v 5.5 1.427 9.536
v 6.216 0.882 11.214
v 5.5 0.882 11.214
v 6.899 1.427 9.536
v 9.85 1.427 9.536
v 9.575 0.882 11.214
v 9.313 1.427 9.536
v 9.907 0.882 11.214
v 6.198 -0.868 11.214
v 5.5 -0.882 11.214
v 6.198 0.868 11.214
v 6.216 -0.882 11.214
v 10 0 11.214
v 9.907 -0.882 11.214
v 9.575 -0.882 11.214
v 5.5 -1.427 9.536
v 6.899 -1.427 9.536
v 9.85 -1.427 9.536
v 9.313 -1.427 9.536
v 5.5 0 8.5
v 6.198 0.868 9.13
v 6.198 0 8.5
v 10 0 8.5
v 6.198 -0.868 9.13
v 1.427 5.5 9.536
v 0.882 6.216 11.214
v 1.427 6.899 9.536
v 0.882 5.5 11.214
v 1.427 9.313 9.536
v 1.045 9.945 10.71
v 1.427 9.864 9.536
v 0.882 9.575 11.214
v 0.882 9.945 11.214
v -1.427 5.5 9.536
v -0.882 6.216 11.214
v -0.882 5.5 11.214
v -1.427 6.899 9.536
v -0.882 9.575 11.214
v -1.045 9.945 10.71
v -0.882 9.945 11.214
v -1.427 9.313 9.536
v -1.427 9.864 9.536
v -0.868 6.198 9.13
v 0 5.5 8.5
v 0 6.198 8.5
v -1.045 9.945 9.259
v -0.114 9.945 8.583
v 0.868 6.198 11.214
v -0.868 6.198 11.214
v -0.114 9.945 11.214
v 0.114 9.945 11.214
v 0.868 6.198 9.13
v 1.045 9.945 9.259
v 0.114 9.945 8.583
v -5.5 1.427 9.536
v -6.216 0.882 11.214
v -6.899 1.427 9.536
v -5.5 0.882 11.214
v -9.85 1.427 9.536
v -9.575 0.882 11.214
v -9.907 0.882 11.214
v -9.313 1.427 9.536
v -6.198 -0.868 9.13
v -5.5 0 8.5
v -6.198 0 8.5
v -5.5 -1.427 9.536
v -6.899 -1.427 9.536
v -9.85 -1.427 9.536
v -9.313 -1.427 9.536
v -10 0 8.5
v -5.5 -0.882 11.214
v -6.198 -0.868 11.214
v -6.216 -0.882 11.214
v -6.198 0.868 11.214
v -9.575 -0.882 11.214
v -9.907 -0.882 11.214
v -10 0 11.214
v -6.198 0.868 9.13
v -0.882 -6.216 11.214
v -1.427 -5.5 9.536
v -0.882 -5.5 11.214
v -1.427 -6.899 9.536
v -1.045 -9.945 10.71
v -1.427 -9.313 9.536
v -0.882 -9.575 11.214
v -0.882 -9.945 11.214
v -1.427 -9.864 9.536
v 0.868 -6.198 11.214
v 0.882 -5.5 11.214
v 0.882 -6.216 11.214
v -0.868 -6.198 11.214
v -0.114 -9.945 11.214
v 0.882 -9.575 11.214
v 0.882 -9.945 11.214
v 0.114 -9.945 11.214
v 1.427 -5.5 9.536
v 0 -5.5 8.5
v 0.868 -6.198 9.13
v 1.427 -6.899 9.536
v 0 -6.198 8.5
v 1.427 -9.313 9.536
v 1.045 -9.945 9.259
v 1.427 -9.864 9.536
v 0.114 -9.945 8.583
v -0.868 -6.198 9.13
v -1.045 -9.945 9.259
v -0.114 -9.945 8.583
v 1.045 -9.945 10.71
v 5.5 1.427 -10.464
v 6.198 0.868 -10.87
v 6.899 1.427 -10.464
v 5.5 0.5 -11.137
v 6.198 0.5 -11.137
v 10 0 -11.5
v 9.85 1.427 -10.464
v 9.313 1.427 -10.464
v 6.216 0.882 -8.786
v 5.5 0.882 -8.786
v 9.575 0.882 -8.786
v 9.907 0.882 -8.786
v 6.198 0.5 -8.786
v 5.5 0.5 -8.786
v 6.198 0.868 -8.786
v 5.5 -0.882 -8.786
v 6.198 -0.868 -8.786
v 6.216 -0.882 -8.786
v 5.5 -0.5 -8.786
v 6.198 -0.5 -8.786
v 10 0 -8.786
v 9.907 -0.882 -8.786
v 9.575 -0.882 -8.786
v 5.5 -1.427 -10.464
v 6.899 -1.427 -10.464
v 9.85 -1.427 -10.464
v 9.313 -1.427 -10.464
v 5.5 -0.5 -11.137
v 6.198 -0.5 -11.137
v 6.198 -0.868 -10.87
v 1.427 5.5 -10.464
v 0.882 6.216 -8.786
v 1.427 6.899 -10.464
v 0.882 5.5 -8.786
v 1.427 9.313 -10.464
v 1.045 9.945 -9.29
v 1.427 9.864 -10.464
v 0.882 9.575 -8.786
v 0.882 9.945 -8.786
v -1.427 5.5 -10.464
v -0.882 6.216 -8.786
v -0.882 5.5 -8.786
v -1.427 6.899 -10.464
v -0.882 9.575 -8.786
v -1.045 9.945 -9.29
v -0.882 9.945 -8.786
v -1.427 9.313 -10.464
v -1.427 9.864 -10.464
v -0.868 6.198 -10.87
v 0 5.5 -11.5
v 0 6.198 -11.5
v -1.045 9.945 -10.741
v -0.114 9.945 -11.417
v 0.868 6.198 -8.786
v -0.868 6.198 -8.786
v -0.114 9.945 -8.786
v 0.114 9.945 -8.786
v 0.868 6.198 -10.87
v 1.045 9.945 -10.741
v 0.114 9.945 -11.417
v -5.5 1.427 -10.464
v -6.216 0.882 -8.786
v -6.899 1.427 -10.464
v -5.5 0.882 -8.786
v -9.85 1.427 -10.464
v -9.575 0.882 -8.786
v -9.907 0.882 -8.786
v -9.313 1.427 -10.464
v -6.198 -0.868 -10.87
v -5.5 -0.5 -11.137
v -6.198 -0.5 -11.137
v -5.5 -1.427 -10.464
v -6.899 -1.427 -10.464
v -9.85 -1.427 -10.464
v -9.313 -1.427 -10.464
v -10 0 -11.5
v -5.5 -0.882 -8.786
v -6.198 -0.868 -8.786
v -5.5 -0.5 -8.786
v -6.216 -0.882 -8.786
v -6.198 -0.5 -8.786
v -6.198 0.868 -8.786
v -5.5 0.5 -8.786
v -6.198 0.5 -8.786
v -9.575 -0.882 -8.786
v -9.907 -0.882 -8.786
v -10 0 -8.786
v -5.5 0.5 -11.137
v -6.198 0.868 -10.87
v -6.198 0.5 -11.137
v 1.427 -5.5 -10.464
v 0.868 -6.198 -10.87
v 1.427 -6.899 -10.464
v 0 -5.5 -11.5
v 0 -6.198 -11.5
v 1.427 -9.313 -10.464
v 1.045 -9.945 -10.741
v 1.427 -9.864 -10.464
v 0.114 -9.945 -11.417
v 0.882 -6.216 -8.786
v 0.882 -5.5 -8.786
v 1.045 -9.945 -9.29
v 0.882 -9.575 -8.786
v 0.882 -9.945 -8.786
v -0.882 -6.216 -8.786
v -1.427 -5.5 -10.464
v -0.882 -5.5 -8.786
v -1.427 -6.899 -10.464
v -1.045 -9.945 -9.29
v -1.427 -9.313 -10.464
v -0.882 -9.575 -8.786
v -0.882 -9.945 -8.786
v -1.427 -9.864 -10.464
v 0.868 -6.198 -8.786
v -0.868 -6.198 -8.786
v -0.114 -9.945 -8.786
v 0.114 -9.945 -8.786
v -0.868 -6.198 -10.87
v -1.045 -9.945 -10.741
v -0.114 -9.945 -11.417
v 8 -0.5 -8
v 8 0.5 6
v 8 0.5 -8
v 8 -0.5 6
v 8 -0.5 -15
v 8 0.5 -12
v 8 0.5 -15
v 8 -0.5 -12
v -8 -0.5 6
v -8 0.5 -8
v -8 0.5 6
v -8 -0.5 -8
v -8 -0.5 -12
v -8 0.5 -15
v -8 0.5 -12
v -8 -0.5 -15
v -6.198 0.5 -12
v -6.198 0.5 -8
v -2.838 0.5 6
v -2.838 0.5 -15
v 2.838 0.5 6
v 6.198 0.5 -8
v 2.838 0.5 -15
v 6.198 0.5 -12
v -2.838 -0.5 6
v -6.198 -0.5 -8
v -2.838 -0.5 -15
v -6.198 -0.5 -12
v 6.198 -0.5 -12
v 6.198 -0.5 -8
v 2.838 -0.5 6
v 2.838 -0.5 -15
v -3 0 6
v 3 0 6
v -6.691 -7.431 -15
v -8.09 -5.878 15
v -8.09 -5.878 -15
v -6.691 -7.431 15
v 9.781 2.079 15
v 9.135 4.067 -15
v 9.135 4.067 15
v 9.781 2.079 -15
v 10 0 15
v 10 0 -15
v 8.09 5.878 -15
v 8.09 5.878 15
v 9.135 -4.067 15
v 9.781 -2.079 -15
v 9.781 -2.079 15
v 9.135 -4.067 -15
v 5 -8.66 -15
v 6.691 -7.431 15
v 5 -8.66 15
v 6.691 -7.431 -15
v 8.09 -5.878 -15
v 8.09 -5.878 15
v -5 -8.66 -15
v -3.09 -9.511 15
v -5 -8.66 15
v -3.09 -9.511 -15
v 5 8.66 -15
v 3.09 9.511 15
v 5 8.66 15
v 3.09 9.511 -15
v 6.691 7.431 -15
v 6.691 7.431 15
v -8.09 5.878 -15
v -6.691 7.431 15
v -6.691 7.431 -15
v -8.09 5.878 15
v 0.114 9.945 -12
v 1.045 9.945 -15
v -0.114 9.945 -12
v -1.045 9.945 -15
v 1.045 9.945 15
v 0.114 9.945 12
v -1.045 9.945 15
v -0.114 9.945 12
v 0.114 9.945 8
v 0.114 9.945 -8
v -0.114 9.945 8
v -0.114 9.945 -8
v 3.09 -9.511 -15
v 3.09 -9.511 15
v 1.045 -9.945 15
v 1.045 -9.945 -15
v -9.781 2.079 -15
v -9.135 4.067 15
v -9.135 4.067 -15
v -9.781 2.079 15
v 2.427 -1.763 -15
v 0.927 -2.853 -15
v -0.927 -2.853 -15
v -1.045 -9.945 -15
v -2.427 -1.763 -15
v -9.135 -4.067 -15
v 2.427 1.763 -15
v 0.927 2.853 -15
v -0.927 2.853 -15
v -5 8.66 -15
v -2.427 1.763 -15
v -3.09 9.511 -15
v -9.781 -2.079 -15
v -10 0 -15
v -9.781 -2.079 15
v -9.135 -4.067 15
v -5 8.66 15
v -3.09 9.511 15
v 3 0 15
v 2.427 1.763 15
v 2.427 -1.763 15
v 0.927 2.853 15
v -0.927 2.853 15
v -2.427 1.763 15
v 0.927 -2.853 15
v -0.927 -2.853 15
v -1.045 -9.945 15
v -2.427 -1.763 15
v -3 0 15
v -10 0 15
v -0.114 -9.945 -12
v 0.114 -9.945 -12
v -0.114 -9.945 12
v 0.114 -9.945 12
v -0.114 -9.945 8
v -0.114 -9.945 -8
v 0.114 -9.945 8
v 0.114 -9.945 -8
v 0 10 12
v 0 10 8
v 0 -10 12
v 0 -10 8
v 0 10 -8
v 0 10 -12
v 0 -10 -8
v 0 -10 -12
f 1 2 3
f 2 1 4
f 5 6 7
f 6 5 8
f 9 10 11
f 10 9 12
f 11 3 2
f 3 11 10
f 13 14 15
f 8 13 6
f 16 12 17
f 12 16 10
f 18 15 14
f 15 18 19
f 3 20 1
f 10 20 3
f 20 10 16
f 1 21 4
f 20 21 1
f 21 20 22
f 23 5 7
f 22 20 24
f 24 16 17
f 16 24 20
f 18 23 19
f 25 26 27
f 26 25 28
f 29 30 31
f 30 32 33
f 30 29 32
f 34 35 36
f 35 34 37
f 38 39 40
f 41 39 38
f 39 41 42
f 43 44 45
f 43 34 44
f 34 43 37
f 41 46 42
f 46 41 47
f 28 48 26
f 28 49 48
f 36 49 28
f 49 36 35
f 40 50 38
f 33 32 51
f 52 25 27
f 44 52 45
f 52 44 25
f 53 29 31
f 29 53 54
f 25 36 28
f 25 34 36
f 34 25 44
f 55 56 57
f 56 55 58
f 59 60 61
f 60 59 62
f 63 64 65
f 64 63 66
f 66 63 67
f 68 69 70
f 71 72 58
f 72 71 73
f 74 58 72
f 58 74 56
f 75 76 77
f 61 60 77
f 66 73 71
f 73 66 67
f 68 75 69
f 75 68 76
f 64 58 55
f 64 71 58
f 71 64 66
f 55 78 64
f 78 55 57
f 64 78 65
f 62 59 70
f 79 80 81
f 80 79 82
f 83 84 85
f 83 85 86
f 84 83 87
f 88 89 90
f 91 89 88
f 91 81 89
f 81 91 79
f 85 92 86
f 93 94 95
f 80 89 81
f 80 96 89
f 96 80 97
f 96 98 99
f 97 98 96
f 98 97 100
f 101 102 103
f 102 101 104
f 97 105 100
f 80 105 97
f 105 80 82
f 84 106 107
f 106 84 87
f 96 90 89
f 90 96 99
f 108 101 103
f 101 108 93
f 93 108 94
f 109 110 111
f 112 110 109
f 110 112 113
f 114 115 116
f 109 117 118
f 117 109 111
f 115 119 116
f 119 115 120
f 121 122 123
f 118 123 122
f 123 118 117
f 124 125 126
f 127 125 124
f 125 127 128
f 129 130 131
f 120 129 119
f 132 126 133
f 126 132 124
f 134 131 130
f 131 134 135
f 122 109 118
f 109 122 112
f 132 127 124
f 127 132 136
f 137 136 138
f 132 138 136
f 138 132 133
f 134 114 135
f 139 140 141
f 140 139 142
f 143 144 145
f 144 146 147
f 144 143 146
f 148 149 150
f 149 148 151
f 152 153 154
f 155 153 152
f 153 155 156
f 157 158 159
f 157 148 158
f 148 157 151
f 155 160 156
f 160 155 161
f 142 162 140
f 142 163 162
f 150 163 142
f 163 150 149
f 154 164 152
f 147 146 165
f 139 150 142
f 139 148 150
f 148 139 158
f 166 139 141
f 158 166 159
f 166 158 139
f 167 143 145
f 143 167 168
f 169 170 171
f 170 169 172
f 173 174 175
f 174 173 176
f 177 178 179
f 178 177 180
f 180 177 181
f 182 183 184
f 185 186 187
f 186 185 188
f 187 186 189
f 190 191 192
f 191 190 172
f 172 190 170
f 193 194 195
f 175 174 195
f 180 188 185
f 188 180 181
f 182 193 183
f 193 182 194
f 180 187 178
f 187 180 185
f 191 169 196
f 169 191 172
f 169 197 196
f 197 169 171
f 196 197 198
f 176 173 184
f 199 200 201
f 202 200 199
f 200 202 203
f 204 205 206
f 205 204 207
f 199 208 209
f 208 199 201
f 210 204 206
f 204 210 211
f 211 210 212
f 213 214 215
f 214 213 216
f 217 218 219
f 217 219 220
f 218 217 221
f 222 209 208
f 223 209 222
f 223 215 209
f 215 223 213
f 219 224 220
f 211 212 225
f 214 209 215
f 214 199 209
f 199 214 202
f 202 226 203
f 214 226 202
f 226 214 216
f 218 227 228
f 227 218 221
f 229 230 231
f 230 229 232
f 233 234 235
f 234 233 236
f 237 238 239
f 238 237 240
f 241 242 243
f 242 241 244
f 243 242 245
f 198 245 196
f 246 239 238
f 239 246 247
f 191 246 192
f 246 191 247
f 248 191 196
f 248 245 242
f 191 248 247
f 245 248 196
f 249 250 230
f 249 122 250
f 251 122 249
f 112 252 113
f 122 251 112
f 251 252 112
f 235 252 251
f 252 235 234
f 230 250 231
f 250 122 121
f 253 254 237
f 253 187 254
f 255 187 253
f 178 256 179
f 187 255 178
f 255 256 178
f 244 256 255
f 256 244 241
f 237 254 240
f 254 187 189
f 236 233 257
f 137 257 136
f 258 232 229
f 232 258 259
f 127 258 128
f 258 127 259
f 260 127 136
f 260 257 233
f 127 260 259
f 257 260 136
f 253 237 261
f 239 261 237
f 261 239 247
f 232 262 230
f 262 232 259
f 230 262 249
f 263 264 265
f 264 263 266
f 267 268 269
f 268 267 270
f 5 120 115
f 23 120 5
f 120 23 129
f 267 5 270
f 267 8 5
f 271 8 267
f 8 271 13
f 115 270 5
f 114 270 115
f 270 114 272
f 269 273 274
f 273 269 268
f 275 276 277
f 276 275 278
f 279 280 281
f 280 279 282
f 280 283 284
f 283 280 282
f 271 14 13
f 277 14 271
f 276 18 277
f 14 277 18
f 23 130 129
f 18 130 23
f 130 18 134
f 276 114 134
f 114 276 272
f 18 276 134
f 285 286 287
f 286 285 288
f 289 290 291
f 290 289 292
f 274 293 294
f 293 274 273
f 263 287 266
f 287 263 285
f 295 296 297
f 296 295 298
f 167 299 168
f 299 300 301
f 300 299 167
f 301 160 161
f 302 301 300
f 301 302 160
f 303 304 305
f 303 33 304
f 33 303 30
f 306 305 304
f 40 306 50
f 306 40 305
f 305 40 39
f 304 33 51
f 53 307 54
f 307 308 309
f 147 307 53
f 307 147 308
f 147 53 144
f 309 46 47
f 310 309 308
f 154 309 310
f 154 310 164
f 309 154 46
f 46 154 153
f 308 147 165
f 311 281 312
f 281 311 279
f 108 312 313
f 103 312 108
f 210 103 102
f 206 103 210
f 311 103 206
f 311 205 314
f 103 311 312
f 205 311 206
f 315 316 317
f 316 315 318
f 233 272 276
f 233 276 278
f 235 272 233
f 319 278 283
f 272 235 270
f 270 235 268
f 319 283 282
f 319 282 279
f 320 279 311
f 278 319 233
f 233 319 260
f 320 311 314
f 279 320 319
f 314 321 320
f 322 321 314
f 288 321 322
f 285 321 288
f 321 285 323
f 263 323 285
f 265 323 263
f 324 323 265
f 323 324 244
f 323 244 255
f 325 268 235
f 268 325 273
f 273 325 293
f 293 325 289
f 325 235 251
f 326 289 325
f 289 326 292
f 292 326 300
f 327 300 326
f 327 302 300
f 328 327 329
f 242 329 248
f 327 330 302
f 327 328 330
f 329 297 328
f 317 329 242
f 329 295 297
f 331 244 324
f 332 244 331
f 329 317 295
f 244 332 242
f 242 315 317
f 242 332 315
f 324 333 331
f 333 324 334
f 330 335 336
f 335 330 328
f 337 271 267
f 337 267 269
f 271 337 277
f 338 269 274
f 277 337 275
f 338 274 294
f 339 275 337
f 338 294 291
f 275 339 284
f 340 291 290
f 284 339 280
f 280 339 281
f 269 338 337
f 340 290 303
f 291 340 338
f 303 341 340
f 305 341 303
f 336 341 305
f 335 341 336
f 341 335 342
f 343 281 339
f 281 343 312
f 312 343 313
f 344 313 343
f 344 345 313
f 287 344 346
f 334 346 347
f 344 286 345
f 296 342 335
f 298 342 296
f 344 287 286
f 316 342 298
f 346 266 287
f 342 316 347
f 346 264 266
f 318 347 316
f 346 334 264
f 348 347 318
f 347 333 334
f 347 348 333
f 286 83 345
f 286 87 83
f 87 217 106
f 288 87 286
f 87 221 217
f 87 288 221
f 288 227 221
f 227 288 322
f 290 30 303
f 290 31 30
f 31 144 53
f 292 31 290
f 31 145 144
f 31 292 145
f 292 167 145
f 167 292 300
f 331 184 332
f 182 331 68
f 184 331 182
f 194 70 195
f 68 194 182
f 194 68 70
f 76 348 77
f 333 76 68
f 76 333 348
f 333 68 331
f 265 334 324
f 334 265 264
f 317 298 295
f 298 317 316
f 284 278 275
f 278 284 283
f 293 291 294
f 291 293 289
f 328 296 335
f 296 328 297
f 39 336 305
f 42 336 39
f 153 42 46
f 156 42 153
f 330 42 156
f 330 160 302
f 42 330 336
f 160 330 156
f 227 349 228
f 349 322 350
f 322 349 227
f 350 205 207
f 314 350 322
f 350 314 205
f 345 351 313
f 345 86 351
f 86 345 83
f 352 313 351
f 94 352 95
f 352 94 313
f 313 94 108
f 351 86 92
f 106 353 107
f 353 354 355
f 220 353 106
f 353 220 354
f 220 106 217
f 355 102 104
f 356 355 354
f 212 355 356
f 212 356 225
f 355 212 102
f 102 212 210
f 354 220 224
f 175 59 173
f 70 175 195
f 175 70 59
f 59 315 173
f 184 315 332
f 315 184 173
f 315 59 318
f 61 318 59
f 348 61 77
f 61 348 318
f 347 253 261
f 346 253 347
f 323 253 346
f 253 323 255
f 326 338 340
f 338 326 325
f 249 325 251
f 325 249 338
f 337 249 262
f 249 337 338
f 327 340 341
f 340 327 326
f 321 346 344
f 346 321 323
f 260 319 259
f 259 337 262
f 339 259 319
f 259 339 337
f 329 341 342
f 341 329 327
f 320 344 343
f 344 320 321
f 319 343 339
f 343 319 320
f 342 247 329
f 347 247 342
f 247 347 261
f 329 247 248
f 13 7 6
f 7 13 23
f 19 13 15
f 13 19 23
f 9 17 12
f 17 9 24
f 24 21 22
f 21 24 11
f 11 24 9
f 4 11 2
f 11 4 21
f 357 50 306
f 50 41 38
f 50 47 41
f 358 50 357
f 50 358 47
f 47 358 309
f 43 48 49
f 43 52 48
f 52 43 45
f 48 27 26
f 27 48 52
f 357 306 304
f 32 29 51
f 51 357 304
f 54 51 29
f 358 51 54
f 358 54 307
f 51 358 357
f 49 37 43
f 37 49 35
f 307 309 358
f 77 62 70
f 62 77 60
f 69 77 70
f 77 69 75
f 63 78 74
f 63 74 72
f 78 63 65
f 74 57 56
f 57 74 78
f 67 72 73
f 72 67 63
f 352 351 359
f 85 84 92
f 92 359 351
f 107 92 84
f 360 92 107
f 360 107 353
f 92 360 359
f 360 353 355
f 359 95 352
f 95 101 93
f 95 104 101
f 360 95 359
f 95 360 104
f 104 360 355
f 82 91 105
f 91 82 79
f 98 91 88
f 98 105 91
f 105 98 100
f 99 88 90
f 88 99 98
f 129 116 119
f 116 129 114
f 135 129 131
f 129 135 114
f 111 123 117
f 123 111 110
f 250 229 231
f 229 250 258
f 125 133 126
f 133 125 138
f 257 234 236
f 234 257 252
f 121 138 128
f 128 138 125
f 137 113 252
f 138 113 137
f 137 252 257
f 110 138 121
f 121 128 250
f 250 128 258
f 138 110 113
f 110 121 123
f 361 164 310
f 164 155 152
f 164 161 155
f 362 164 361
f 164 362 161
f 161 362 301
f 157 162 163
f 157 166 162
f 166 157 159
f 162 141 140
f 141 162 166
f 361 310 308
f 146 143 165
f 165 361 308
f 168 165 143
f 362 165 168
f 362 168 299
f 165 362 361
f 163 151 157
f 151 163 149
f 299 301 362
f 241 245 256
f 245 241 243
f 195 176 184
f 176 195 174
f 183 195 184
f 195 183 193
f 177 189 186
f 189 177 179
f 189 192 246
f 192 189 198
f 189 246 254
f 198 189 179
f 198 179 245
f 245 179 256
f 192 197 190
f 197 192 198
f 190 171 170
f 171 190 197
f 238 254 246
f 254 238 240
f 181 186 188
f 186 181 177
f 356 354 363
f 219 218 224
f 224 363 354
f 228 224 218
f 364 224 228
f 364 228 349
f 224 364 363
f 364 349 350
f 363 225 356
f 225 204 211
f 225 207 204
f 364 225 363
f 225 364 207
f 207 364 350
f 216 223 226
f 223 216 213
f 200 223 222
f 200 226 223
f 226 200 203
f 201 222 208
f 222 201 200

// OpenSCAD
// Parameters
coupling_diameter = 20;
coupling_height = 30;
shaft_hole_diameter = 6;
set_screw_hole_diameter = 3;
set_screw_hole_depth = 5;
slit_width = 1;
slit_spacing = 3;
num_slits = 5;
slit_length = coupling_diameter * 0.8; // Adjusted slit length

// Function to create the flexible coupling body
module flexible_coupling_body() {
    difference() {
        // Main cylindrical body
        cylinder(h = coupling_height, d = coupling_diameter, center = true);
        
        // Central bore for shaft insertion
        cylinder(h = coupling_height + 2, d = shaft_hole_diameter, center = true);
        
        // Set screw holes repositioned to align with slits
        for (i = [0:3]) {
            rotate([0, 0, i * 90])
                translate([coupling_diameter / 2 - 2, 0, coupling_height / 3])
                    rotate([0, 90, 0])
                        cylinder(h = set_screw_hole_depth, d = set_screw_hole_diameter, center = true);
        }
        
        for (i = [0:3]) {
            rotate([0, 0, i * 90])
                translate([coupling_diameter / 2 - 2, 0, -coupling_height / 3])
                    rotate([0, 90, 0])
                        cylinder(h = set_screw_hole_depth, d = set_screw_hole_diameter, center = true);
        }
        
        // Slits for flexibility
        for (i = [0:num_slits - 1]) {
            translate([0, 0, -coupling_height / 2 + (i + 0.5) * slit_spacing])
                cube([slit_length, slit_width, coupling_height / 2], center = true);
        }
    }
}

// Function to create set screws
module set_screw() {
    cylinder(h = 4, d = set_screw_hole_diameter + 1, center = true);
}

// Assemble the model
module flexible_coupling() {
    flexible_coupling_body();
    
    // Positioning the set screws to align with slits
    for (i = [0:3]) {
        rotate([0, 0, i * 90])
            translate([coupling_diameter / 2 - 2, 0, coupling_height / 3])
                set_screw();
    }
    
    for (i = [0:3]) {
        rotate([0, 0, i * 90])
            translate([coupling_diameter / 2 - 2, 0, -coupling_height / 3])
                set_screw();
    }
}

// Render the final model
flexible_coupling();
